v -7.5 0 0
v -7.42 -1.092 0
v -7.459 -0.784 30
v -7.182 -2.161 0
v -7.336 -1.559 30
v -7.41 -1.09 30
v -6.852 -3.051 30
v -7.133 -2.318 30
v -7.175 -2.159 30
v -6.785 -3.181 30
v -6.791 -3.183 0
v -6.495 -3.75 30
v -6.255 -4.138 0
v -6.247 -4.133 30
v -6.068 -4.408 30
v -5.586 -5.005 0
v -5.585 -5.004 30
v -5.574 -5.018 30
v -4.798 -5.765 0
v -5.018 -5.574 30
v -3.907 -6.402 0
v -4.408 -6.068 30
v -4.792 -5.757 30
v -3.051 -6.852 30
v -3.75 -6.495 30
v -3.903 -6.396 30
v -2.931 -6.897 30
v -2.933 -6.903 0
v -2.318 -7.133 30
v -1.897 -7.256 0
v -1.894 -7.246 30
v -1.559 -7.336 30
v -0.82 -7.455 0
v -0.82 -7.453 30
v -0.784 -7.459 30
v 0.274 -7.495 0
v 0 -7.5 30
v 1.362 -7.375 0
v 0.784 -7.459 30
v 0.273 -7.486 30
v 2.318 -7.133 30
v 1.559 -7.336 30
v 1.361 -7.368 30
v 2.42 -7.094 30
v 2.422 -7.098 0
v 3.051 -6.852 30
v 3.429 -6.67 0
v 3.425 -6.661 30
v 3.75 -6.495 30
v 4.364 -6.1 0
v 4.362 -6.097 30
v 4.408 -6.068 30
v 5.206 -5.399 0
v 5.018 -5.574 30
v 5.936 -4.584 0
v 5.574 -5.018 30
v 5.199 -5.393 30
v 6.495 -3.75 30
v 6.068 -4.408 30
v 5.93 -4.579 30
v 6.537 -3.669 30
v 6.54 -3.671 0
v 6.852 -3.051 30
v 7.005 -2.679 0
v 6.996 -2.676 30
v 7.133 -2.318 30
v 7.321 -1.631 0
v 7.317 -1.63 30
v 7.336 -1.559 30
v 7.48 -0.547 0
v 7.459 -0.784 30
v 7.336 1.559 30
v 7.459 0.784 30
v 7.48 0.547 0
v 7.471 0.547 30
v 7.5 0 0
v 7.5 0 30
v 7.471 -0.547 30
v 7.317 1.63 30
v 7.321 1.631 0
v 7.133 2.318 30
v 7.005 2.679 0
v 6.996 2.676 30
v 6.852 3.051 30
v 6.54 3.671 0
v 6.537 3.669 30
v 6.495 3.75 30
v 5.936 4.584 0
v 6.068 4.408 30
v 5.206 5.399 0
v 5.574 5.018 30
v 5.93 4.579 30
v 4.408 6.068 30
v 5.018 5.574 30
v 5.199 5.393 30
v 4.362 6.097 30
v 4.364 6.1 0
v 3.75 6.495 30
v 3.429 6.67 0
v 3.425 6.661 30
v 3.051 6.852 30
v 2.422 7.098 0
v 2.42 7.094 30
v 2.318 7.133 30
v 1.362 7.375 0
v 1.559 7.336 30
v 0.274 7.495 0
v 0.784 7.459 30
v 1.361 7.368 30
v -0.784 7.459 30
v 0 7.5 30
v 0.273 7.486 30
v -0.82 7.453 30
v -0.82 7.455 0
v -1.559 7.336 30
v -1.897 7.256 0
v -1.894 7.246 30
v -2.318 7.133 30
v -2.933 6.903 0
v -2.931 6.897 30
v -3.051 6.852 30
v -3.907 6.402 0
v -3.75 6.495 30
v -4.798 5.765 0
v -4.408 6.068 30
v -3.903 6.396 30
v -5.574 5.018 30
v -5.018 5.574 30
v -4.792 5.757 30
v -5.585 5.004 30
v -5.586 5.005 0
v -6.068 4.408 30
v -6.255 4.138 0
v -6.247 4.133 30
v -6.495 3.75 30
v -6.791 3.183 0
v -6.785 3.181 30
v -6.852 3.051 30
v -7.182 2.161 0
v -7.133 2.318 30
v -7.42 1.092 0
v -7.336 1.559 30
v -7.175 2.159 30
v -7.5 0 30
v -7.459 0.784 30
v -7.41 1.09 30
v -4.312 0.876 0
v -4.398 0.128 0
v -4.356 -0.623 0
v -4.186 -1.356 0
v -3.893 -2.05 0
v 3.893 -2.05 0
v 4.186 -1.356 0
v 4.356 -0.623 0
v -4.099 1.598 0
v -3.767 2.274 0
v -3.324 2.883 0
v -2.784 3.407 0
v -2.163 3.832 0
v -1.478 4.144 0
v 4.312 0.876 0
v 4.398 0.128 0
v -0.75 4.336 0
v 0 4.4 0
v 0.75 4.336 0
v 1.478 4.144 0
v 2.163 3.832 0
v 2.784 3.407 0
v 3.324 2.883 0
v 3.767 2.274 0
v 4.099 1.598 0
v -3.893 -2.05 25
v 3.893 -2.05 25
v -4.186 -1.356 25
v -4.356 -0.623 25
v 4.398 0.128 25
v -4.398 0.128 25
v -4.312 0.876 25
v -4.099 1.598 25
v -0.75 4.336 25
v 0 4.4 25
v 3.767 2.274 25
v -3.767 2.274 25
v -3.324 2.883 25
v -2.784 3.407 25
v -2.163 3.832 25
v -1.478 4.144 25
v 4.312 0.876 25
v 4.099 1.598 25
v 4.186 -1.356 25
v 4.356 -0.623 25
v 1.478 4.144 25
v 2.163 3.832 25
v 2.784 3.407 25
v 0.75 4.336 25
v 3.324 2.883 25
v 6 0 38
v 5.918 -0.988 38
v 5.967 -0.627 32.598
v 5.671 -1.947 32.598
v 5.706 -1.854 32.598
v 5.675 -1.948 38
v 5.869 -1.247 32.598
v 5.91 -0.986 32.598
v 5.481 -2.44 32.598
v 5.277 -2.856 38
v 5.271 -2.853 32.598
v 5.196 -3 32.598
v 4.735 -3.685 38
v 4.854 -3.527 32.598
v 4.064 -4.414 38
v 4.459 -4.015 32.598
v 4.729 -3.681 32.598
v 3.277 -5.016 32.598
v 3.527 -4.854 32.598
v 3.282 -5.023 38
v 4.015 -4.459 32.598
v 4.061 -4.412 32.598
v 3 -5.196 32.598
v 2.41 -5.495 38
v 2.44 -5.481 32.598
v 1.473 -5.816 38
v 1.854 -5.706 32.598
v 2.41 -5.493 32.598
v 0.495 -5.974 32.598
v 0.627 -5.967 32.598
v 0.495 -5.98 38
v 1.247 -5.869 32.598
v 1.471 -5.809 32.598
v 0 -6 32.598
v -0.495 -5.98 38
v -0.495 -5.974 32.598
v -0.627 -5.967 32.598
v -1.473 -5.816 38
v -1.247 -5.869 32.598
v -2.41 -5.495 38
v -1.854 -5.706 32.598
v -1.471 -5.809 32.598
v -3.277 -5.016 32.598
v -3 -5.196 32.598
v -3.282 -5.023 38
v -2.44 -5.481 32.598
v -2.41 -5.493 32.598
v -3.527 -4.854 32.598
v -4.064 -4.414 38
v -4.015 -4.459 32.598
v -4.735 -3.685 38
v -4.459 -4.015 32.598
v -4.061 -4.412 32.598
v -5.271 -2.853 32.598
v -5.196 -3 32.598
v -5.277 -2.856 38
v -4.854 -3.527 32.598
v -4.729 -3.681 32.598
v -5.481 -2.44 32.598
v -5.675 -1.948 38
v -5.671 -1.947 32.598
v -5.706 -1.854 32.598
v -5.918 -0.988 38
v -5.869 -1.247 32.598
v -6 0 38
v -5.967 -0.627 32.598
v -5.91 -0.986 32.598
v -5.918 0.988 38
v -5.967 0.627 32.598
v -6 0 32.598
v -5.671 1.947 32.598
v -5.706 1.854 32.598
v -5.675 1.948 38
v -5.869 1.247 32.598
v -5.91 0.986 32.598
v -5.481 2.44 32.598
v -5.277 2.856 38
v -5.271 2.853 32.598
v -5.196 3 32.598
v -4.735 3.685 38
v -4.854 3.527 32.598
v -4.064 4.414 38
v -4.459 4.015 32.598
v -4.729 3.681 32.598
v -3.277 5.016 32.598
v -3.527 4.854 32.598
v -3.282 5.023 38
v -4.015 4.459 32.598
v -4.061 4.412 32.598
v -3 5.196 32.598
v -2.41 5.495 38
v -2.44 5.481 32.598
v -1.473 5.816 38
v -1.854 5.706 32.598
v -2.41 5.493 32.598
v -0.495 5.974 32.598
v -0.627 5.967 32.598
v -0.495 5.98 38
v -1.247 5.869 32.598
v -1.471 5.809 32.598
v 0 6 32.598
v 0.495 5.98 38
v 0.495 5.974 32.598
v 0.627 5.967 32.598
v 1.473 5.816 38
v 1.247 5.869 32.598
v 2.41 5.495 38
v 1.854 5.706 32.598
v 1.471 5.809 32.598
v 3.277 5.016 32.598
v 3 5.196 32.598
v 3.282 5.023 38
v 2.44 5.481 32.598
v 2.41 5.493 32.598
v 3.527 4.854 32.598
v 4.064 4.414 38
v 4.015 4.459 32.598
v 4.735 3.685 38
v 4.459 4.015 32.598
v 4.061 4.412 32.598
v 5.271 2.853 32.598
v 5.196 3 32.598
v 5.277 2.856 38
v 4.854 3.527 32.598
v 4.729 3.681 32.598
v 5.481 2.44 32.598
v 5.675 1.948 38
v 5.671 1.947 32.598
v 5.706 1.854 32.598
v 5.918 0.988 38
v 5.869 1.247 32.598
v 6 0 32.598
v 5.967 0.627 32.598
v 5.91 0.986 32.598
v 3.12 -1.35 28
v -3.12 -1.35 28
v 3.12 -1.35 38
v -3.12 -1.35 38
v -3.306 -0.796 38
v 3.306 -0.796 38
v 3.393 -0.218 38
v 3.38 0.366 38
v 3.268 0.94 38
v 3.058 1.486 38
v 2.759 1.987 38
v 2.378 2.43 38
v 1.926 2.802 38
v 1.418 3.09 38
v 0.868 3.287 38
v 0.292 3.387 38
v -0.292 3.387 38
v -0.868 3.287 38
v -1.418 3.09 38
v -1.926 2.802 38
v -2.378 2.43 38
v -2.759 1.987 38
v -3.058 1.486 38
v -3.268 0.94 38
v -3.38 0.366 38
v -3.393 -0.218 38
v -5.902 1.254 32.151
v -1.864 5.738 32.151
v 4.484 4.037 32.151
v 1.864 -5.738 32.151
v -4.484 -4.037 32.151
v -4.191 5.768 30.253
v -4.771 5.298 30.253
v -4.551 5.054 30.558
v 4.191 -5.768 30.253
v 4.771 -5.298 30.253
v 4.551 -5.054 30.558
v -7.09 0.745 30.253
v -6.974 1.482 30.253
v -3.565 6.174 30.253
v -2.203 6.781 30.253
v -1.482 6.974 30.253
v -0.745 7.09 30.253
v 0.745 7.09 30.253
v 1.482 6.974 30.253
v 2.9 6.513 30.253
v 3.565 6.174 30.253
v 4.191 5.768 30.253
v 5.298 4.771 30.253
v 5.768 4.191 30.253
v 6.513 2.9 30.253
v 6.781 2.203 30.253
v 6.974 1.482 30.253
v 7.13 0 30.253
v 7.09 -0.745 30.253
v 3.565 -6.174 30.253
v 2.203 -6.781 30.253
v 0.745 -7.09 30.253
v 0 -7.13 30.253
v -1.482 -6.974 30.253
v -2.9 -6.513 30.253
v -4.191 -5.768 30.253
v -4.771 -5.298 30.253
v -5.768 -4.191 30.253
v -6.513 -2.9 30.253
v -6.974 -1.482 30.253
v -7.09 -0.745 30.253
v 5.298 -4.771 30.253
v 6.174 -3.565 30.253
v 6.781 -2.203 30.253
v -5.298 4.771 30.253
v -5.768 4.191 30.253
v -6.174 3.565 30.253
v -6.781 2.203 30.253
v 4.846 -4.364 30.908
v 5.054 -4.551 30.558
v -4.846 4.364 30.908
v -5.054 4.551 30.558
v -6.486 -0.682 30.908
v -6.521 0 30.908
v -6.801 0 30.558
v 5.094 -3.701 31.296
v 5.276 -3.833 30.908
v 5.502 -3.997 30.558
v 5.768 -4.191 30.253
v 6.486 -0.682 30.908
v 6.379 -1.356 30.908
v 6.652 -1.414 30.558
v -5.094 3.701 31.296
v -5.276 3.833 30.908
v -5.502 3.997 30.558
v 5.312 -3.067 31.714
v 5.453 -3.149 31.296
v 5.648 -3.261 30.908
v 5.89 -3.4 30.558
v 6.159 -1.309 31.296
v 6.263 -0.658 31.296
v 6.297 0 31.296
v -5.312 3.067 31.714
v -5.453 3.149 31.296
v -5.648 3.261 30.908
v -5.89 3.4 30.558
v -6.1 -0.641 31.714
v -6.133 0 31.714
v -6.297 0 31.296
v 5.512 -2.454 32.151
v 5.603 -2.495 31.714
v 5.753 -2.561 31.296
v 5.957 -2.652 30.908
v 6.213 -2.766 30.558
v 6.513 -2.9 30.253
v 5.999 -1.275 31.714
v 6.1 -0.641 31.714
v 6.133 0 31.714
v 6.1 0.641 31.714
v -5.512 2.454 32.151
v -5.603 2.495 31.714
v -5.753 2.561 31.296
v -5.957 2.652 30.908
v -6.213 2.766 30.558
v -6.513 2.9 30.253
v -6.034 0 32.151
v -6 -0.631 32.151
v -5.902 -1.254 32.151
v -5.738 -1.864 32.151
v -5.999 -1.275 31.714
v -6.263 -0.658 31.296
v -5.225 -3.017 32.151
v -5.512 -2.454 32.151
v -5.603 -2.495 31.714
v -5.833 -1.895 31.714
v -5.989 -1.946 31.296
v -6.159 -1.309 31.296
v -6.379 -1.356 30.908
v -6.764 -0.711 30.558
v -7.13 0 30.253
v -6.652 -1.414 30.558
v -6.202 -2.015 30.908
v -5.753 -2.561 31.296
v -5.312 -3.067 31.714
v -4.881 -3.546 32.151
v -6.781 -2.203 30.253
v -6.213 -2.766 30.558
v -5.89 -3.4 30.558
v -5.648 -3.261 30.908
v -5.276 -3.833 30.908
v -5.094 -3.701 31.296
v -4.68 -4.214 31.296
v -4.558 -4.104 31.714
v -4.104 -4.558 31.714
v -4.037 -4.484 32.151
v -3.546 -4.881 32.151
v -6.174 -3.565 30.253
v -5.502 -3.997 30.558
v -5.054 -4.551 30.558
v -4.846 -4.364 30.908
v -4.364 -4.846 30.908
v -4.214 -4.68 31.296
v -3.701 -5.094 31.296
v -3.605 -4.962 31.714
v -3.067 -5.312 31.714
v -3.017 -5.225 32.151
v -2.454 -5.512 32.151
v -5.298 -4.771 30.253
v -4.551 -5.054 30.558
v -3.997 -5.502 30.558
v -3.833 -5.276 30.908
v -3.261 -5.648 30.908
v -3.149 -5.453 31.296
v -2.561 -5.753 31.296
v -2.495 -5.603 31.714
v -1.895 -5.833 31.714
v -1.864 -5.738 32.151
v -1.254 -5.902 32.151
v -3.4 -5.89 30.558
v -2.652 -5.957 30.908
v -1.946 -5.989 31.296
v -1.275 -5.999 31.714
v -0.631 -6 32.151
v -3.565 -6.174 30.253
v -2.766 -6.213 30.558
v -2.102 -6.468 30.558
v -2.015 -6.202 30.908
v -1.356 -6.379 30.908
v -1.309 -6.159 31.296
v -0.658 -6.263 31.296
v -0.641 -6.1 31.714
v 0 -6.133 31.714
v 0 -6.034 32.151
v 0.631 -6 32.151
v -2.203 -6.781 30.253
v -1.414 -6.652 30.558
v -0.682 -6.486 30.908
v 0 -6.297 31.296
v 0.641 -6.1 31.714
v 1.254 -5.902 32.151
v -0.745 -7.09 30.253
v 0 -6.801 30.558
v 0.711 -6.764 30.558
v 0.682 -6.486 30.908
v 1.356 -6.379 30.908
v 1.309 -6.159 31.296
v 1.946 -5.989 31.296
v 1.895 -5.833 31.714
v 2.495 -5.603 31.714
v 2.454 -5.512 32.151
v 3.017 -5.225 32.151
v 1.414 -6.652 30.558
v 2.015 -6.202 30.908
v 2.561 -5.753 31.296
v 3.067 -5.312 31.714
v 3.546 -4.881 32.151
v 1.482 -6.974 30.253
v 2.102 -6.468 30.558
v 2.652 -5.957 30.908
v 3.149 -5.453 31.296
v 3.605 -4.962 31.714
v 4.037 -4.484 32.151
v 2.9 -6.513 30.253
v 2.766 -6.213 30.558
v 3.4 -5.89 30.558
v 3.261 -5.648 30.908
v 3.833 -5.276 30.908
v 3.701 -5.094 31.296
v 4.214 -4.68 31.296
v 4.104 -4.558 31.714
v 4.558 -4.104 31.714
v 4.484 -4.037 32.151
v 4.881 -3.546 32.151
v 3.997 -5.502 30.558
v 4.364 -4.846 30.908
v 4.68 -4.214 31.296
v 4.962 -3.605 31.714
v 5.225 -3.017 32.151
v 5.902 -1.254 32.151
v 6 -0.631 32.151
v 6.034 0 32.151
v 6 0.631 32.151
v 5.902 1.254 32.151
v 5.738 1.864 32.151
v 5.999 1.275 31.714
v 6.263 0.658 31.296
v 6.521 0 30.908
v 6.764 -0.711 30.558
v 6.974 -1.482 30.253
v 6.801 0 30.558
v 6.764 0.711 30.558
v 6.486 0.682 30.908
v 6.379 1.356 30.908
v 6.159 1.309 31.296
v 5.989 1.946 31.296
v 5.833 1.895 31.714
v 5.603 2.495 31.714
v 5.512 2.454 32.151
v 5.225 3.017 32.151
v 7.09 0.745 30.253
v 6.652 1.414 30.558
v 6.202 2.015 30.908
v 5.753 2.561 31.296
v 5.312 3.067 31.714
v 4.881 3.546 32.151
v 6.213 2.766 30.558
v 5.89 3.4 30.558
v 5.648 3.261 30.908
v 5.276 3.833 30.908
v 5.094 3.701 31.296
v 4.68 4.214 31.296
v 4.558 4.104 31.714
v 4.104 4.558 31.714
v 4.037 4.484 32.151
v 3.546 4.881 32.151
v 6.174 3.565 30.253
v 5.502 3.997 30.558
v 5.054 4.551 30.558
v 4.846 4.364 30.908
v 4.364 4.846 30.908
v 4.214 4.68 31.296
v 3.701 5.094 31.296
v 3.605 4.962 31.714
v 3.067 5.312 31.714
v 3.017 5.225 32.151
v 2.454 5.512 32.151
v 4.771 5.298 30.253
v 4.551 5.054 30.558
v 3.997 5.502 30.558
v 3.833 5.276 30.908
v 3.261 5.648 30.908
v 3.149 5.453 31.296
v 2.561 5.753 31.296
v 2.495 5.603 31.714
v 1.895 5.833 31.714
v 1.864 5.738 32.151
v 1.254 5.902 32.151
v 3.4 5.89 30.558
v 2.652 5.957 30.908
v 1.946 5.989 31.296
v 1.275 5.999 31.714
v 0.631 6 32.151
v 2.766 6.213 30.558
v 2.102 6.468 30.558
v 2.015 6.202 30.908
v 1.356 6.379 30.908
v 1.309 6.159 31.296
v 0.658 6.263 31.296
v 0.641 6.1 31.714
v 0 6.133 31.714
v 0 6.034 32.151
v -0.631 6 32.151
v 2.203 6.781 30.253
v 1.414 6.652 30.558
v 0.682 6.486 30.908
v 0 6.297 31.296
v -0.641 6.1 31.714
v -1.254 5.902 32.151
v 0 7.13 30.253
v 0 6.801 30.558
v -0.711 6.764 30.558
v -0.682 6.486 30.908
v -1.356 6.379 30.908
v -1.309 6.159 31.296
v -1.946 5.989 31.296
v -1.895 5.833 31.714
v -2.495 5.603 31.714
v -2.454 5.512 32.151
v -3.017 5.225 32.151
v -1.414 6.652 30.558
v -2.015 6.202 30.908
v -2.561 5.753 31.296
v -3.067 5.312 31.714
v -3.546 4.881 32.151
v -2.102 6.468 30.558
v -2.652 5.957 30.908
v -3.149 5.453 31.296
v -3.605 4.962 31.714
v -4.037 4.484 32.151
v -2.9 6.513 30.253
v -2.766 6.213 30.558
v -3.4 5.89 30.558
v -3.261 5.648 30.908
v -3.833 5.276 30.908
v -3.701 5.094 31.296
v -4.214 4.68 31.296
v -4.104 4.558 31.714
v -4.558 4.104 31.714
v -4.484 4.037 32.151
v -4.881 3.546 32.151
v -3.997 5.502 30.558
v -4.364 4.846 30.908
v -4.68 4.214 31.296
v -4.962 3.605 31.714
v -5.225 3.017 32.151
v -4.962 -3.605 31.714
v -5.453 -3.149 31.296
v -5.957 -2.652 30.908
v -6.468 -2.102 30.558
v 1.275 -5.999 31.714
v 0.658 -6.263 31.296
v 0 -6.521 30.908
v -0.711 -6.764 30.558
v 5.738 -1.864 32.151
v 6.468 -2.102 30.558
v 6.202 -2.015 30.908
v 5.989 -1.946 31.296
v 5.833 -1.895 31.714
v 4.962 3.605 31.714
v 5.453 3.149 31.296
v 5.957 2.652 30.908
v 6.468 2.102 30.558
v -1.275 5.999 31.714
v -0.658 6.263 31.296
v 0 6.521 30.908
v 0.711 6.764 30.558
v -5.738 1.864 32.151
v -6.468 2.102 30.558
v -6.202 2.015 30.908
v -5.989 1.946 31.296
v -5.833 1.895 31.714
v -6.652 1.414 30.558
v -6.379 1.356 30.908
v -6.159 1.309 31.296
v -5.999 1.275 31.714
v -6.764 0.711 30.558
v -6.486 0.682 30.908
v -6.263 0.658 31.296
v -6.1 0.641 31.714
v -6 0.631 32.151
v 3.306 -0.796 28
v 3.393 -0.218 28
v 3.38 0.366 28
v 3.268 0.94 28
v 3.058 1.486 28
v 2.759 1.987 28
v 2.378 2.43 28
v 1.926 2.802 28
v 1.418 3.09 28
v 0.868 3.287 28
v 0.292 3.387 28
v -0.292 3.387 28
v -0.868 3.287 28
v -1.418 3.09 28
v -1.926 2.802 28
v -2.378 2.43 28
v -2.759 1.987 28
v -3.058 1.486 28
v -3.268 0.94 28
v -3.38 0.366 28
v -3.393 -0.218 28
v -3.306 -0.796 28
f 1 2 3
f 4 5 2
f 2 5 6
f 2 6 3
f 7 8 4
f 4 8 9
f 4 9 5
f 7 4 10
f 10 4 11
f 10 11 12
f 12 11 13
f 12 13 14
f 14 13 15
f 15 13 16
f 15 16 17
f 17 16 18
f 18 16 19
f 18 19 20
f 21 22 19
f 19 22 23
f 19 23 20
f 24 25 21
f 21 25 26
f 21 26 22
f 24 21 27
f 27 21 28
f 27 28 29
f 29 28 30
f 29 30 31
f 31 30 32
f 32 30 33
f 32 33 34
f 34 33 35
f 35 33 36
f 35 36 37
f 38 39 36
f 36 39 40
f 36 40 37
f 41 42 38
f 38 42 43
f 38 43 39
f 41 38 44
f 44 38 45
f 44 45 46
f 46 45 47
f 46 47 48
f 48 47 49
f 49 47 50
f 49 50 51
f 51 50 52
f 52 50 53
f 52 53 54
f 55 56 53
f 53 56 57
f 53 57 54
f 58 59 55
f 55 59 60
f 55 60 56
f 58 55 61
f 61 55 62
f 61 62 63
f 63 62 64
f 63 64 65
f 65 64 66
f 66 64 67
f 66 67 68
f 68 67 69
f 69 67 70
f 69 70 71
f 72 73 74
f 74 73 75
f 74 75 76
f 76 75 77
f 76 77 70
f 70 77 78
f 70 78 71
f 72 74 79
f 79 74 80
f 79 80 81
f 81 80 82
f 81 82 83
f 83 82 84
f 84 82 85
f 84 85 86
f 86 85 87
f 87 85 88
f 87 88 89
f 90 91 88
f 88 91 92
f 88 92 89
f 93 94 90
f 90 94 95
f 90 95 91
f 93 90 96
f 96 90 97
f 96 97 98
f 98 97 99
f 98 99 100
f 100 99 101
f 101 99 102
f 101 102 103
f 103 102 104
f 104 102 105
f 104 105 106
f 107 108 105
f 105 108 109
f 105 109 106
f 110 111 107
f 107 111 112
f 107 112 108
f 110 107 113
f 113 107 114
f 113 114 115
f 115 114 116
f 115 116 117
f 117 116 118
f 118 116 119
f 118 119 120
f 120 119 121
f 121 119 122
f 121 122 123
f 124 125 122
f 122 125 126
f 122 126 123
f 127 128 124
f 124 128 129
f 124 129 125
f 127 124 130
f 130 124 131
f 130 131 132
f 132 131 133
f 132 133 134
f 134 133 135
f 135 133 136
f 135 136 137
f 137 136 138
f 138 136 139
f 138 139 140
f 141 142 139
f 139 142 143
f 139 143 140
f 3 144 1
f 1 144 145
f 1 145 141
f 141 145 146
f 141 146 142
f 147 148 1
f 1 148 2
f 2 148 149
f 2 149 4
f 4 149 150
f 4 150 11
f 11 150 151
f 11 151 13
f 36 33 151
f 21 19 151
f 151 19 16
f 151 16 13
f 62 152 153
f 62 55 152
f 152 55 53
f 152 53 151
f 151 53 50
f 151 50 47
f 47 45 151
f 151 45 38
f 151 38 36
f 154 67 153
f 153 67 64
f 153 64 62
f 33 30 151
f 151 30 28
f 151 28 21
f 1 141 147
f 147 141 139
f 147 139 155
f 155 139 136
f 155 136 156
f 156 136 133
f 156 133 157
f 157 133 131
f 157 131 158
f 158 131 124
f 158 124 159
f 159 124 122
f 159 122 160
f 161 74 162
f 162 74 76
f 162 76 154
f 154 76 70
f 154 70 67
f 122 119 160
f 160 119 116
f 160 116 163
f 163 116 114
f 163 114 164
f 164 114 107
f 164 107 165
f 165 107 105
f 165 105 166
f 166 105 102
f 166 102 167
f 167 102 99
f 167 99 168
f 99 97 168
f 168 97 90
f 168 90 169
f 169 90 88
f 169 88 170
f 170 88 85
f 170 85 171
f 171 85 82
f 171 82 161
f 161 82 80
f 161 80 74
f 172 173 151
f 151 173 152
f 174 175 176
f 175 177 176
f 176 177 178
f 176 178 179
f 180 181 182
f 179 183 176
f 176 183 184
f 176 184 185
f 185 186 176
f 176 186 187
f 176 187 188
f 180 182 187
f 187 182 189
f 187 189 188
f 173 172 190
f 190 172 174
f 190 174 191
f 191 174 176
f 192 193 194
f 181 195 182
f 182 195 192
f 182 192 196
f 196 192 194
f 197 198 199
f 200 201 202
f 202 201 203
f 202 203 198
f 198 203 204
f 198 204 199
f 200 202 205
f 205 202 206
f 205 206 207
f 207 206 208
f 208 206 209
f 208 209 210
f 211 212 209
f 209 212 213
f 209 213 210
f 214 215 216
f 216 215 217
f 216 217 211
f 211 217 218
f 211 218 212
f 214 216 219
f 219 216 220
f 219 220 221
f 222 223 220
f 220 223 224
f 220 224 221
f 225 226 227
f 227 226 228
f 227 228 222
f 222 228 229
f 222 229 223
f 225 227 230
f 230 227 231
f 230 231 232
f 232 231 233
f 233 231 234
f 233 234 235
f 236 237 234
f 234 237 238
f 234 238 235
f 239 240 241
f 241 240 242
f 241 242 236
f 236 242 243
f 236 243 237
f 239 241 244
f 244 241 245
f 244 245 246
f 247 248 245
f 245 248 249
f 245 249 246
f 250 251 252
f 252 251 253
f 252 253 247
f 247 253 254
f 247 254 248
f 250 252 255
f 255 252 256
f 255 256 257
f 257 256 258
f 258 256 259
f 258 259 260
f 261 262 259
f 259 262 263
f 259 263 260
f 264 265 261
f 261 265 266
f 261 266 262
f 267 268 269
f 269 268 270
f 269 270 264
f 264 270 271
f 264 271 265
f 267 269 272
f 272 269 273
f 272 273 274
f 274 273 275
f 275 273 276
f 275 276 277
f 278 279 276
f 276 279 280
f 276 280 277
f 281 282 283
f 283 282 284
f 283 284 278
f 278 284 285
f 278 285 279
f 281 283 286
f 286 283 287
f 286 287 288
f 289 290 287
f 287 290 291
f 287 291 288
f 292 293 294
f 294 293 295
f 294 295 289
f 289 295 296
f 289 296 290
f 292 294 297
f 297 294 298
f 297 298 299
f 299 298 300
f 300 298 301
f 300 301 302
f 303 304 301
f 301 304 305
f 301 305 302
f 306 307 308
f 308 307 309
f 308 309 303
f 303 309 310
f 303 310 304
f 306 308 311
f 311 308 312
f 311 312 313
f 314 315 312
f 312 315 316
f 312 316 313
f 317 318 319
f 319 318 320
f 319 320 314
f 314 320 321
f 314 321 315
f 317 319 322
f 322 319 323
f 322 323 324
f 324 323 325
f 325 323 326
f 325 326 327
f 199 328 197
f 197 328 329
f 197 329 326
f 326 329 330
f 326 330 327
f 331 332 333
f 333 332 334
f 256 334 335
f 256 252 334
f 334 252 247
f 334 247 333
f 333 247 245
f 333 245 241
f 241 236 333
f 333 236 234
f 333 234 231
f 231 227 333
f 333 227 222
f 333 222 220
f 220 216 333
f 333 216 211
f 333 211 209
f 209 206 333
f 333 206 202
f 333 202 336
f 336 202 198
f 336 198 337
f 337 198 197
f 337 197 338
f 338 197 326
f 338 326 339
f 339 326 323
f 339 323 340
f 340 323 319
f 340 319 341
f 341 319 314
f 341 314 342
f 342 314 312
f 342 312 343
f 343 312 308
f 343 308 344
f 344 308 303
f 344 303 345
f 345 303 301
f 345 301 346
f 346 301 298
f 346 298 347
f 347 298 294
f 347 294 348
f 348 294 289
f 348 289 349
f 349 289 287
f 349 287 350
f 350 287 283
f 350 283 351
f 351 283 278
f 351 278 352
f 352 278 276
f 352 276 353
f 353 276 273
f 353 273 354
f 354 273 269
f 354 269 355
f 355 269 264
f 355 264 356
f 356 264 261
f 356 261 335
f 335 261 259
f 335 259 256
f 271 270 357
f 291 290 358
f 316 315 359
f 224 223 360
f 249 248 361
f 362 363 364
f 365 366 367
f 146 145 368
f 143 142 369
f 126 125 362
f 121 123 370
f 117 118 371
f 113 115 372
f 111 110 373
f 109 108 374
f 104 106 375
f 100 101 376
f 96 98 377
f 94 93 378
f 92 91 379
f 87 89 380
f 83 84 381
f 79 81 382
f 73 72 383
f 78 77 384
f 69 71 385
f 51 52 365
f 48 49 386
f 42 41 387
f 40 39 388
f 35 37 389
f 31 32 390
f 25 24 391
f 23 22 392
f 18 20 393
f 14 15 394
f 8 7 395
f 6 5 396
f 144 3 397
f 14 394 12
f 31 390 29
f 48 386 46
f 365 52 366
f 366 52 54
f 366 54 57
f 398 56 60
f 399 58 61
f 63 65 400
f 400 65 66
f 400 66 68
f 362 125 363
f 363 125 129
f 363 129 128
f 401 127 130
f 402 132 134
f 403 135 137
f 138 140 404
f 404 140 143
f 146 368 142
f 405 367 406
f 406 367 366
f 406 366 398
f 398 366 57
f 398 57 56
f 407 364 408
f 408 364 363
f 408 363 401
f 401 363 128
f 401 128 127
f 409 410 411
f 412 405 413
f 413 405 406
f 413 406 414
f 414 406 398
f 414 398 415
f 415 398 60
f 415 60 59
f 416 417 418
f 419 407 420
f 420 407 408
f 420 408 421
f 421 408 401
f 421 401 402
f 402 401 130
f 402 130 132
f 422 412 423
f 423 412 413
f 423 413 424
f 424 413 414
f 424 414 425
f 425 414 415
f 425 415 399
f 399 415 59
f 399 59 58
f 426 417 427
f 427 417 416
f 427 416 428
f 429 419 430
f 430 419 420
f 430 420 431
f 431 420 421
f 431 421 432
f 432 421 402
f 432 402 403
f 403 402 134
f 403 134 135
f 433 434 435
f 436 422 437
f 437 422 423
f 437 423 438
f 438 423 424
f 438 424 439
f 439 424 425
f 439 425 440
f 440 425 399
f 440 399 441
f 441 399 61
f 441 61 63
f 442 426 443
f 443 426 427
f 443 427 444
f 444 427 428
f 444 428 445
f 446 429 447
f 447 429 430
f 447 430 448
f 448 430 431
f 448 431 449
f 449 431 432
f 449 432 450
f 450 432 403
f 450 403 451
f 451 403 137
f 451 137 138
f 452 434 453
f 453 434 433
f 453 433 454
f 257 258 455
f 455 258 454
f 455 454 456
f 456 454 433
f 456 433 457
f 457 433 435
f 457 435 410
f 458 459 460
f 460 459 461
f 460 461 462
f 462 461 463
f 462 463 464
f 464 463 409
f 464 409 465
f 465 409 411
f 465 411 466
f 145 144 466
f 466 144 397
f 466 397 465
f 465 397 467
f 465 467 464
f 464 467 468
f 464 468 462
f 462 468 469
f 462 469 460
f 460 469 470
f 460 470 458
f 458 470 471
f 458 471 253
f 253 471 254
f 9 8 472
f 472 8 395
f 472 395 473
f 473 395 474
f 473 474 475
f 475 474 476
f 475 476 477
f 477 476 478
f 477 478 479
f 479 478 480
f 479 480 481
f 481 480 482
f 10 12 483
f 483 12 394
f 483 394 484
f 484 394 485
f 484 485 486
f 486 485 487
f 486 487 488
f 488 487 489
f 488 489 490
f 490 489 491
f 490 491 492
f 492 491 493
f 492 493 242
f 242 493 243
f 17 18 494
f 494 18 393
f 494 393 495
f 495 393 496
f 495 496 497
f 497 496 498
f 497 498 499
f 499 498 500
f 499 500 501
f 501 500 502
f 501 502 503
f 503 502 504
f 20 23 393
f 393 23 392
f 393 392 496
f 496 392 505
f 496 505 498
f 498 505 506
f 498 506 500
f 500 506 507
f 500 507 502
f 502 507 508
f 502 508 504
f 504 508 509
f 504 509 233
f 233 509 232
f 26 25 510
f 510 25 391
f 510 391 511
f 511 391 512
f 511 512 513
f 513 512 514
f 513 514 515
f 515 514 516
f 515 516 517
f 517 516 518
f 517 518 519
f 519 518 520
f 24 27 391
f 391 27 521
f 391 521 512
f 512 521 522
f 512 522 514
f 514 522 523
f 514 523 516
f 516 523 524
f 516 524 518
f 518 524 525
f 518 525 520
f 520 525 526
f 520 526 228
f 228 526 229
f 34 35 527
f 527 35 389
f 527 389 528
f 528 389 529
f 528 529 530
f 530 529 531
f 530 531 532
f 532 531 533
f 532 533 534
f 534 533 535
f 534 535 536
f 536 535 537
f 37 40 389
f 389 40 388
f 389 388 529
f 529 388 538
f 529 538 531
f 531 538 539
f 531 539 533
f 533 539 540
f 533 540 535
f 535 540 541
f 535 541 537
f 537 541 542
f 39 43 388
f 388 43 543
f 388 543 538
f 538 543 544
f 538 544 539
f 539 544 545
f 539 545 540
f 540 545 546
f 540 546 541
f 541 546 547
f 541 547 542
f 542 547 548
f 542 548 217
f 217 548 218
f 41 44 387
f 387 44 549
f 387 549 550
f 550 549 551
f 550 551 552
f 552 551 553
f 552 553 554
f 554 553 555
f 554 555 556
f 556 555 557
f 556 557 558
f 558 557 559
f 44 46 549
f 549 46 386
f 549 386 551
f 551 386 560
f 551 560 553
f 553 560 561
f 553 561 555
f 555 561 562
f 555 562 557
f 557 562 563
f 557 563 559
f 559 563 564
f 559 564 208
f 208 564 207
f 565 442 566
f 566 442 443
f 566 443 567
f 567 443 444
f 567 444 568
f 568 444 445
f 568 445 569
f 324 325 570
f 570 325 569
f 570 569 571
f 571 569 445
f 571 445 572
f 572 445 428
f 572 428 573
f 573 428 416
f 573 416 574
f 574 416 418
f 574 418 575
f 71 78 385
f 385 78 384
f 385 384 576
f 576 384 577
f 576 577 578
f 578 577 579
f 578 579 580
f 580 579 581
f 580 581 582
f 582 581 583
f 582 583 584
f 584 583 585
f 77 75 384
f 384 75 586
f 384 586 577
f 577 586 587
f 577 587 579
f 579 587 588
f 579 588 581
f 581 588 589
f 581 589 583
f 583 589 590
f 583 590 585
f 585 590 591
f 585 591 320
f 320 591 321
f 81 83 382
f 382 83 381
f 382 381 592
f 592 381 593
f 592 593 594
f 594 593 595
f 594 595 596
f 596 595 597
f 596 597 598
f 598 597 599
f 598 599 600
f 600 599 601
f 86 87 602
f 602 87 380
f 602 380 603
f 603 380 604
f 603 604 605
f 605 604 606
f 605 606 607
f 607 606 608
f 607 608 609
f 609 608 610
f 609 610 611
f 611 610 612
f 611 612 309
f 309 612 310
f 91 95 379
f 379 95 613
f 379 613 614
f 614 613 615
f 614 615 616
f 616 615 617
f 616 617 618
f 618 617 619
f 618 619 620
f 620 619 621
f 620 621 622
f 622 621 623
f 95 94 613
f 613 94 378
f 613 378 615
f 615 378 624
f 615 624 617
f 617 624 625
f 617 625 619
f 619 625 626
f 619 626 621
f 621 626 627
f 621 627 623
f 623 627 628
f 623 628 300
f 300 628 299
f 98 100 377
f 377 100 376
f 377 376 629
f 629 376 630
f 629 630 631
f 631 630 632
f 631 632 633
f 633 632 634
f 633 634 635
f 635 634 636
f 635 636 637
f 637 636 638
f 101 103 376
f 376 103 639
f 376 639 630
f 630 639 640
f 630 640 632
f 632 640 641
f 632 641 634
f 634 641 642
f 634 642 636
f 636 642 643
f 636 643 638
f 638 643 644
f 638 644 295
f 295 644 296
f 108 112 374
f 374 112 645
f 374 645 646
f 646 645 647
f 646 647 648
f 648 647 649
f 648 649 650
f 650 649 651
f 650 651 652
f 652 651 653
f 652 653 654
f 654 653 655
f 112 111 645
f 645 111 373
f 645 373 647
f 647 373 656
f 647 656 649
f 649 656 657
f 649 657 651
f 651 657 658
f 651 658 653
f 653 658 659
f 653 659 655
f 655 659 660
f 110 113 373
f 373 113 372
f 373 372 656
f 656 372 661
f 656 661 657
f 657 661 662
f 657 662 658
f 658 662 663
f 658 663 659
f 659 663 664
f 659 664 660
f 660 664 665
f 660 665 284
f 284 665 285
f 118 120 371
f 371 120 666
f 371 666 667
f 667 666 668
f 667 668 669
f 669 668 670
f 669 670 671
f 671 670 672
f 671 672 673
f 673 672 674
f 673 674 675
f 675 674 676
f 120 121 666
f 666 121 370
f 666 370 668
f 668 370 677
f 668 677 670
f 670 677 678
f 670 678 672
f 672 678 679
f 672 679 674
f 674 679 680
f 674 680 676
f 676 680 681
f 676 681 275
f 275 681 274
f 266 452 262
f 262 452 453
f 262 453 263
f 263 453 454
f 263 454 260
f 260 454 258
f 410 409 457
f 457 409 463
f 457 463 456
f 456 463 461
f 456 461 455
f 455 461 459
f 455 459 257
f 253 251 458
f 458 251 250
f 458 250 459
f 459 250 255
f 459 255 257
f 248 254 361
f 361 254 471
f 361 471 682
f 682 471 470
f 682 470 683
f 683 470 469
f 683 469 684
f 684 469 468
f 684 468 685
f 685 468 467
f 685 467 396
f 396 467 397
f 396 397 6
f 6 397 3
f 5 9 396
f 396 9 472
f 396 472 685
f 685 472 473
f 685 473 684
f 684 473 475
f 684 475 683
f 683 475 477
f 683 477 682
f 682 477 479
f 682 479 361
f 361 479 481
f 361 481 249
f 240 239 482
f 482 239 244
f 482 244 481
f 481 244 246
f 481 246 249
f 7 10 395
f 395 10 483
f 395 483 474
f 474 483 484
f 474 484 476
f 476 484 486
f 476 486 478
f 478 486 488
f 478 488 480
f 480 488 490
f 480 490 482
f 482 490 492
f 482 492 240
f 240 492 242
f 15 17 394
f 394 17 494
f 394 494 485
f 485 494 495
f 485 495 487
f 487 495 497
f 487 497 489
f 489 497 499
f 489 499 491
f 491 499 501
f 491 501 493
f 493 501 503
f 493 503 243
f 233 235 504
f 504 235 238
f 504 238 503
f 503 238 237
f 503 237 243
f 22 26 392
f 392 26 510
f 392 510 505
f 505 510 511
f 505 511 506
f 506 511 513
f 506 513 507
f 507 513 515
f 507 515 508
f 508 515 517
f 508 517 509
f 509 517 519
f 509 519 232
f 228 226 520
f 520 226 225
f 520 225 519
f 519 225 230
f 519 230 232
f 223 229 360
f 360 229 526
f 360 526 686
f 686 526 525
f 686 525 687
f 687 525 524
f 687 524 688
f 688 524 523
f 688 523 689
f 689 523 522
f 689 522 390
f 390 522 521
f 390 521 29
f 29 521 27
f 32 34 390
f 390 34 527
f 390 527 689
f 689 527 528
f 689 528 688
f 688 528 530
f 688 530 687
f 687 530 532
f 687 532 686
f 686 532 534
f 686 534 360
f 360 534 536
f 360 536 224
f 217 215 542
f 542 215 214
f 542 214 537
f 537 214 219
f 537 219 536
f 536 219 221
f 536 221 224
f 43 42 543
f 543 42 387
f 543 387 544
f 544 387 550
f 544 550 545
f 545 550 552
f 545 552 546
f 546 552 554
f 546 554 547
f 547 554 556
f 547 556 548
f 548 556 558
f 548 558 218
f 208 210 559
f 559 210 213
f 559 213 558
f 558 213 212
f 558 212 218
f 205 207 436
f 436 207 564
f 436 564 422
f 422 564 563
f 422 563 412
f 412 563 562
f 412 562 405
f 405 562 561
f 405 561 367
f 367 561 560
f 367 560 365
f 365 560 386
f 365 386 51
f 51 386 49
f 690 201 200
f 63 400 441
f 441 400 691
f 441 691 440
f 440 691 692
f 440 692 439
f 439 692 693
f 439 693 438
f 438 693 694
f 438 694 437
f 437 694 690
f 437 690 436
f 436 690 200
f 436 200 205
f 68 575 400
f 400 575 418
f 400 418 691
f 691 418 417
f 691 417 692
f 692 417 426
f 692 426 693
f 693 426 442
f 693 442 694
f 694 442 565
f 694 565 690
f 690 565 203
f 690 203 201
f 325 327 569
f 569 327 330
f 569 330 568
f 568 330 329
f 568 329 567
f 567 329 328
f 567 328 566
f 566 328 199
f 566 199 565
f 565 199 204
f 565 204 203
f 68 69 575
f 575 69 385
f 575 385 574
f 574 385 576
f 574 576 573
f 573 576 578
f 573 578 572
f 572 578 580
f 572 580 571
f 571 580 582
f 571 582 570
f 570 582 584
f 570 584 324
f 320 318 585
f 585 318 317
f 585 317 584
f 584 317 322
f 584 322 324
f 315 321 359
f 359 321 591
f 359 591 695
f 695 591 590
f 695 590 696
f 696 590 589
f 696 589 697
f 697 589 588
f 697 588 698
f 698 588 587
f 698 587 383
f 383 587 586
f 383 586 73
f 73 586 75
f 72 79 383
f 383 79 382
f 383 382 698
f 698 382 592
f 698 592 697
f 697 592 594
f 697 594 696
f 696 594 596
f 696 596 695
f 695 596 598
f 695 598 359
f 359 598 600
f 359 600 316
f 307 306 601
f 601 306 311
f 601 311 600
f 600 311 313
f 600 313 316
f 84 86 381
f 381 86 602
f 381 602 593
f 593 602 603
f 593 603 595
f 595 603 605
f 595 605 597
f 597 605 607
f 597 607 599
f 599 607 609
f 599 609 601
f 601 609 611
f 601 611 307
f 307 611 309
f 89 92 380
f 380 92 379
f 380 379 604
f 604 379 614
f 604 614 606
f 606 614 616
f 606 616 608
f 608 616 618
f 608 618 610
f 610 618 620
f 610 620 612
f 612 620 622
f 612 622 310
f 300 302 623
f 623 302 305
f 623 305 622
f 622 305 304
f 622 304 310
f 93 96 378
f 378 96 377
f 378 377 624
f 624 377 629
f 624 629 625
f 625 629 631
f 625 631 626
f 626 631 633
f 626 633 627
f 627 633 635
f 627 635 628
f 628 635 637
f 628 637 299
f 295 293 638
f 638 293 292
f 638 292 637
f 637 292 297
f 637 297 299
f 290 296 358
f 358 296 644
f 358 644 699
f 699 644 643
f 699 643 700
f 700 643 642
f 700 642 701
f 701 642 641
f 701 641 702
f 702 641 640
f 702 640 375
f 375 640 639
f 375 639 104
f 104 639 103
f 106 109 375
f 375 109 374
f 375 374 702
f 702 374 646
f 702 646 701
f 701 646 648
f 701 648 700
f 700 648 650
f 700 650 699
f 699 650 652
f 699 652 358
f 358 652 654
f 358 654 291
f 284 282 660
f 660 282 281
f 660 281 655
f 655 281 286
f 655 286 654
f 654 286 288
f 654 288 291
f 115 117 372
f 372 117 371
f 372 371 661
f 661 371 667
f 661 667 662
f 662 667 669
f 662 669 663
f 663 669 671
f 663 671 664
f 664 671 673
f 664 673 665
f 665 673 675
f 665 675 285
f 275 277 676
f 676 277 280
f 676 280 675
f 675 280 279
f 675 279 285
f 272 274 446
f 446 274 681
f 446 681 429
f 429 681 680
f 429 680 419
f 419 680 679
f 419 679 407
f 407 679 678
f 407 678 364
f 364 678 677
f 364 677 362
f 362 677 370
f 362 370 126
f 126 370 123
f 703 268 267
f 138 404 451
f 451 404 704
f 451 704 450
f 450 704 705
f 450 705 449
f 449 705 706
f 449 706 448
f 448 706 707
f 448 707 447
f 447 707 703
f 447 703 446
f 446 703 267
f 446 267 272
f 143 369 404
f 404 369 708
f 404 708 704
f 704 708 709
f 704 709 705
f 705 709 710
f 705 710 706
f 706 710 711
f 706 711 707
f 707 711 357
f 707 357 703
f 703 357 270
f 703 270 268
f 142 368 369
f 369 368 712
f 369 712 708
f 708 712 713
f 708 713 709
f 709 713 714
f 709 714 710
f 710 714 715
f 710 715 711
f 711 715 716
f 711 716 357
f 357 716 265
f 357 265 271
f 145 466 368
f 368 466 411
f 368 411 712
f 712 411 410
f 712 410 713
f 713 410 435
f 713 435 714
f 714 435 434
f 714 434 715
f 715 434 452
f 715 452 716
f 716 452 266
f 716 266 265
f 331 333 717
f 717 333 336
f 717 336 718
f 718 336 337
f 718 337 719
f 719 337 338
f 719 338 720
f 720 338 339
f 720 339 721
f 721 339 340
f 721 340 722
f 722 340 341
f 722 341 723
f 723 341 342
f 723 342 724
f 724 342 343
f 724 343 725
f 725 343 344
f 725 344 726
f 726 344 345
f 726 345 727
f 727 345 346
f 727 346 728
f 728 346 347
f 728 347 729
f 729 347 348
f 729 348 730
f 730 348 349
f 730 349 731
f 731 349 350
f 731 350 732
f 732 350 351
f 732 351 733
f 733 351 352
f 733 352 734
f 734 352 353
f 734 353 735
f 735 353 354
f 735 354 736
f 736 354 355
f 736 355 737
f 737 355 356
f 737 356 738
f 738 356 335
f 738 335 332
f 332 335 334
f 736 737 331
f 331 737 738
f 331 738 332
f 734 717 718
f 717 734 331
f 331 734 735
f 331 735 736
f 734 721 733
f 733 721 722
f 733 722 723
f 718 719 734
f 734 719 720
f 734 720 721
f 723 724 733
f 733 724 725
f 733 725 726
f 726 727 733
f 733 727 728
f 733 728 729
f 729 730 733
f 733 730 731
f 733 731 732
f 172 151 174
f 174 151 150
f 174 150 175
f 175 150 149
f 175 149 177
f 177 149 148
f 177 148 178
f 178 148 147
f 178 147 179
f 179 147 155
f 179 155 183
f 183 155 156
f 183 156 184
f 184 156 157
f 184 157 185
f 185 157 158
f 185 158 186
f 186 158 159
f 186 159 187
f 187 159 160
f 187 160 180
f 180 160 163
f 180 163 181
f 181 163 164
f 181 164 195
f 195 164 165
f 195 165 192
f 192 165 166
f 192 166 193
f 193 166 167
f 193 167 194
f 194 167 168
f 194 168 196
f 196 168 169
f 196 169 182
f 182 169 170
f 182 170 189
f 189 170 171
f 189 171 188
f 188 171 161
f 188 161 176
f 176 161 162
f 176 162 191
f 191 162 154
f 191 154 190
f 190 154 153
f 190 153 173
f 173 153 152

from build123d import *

# Parameters (mm, degrees)
IZIM1_R                     = 7.5
Y_KSEKLIK_EKSTR_ZYON1_DEPTH = 38
KES_EKSTR_ZYON1_DEPTH       = 9.5
KES_EKSTR_ZYON3_DEPTH       = 25
KES_EKSTR_ZYON4_START       = -8
IZIM4_R                     = 7.5
IZIM4_R_2                   = 6
KES_EKSTR_ZYON4_DEPTH       = 8
RADYUS1_R                   = 3
KES_EKSTR_ZYON5_DEPTH       = 10
KES_EKSTR_ZYON6_DEPTH       = 25
KES_EKSTR_ZYON7_DEPTH       = 25


with BuildPart() as part:
    # Çizim1 → Yükseklik-Ekstrüzyon1 (new body)
    with BuildSketch(Plane.XY):
        Circle(IZIM1_R)
    extrude(amount=Y_KSEKLIK_EKSTR_ZYON1_DEPTH)

    # Çizim2 → Kes-Ekstrüzyon1 (cut)
    with BuildSketch(Plane.XY.offset(38)):
        with BuildLine():
            Line((0, -1.35), (-2.734958866, -1.35))
            ThreePointArc((-2.734958866, -1.35), (0, 3.05), (2.734958866, -1.35))
            Line((2.734958866, -1.35), (0, -1.35))
        make_face()
    extrude(amount=-KES_EKSTR_ZYON1_DEPTH, mode=Mode.SUBTRACT)

    # Çizim3 → Kes-Ekstrüzyon3 (cut)
    with BuildSketch(Plane(origin=(0, 0, 0), x_dir=(-1, 0, 0), z_dir=(0, 0, -1))):
        with BuildLine():
            Line((0, -2.05), (-3.258834147, -2.05))
            ThreePointArc((-3.258834147, -2.05), (0, 3.85), (3.258834147, -2.05))
            Line((3.258834147, -2.05), (0, -2.05))
        make_face()
    extrude(amount=-KES_EKSTR_ZYON3_DEPTH, mode=Mode.SUBTRACT)

    # Çizim4 → Kes-Ekstrüzyon4 (cut)
    with BuildSketch(Plane.XY.offset(38).offset(KES_EKSTR_ZYON4_START)):
        Circle(IZIM4_R)
        Circle(IZIM4_R_2, mode=Mode.SUBTRACT)
    extrude(amount=KES_EKSTR_ZYON4_DEPTH, mode=Mode.SUBTRACT)

    # Radyus1
    # the kernel refuses this fillet: 3 mm, written as the material it adds along each edge
    with BuildSketch(Plane(origin=(0, 0, 30), x_dir=(1, 0, 0), z_dir=(0, -1, 0))) as radyus1_piece_1:
        with BuildLine():
            CenterArc((9, 2.598076211), RADYUS1_R, 180, 60)
            Line((6, 2.598076211), (5.94, 2.598076211))
            Line((5.94, 2.598076211), (5.94, 0))
            Line((5.94, 0), (6, -0.06))
            ThreePointArc((6, -0.06), (6.75, -0.06), (7.47, -0.051961524))
            Line((7.47, -0.051961524), (7.5, 0))
        make_face()
    revolve(axis=Axis((0, 0, 30), (0, 0, 1)))

    # Çizim5 → Kes-Ekstrüzyon5 (cut)
    with BuildSketch(Plane.XY.offset(38)):
        with BuildLine():
            Line((-3.120496755, -1.35), (3.120496755, -1.35))
            ThreePointArc((3.120496755, -1.35), (0, 3.4), (-3.120496755, -1.35))
        make_face()
    extrude(amount=-KES_EKSTR_ZYON5_DEPTH, mode=Mode.SUBTRACT)

    # Çizim6 → Kes-Ekstrüzyon6 (cut)
    with BuildSketch(Plane(origin=(0, 0, 0), x_dir=(-1, 0, 0), z_dir=(0, 0, -1))):
        with BuildLine():
            Line((-3.434748899, -2.05), (3.434748899, -2.05))
            ThreePointArc((3.434748899, -2.05), (0, 4), (-3.434748899, -2.05))
        make_face()
    extrude(amount=-KES_EKSTR_ZYON6_DEPTH, mode=Mode.SUBTRACT)

    # Çizim8 → Kes-Ekstrüzyon7 (cut)
    with BuildSketch(Plane(origin=(0, 0, 0), x_dir=(-1, 0, 0), z_dir=(0, 0, -1))):
        with BuildLine():
            Line((-3.893263413, -2.05), (3.893263413, -2.05))
            ThreePointArc((3.893263413, -2.05), (0, 4.4), (-3.893263413, -2.05))
        make_face()
    extrude(amount=-KES_EKSTR_ZYON7_DEPTH, mode=Mode.SUBTRACT)


solid = part.part
